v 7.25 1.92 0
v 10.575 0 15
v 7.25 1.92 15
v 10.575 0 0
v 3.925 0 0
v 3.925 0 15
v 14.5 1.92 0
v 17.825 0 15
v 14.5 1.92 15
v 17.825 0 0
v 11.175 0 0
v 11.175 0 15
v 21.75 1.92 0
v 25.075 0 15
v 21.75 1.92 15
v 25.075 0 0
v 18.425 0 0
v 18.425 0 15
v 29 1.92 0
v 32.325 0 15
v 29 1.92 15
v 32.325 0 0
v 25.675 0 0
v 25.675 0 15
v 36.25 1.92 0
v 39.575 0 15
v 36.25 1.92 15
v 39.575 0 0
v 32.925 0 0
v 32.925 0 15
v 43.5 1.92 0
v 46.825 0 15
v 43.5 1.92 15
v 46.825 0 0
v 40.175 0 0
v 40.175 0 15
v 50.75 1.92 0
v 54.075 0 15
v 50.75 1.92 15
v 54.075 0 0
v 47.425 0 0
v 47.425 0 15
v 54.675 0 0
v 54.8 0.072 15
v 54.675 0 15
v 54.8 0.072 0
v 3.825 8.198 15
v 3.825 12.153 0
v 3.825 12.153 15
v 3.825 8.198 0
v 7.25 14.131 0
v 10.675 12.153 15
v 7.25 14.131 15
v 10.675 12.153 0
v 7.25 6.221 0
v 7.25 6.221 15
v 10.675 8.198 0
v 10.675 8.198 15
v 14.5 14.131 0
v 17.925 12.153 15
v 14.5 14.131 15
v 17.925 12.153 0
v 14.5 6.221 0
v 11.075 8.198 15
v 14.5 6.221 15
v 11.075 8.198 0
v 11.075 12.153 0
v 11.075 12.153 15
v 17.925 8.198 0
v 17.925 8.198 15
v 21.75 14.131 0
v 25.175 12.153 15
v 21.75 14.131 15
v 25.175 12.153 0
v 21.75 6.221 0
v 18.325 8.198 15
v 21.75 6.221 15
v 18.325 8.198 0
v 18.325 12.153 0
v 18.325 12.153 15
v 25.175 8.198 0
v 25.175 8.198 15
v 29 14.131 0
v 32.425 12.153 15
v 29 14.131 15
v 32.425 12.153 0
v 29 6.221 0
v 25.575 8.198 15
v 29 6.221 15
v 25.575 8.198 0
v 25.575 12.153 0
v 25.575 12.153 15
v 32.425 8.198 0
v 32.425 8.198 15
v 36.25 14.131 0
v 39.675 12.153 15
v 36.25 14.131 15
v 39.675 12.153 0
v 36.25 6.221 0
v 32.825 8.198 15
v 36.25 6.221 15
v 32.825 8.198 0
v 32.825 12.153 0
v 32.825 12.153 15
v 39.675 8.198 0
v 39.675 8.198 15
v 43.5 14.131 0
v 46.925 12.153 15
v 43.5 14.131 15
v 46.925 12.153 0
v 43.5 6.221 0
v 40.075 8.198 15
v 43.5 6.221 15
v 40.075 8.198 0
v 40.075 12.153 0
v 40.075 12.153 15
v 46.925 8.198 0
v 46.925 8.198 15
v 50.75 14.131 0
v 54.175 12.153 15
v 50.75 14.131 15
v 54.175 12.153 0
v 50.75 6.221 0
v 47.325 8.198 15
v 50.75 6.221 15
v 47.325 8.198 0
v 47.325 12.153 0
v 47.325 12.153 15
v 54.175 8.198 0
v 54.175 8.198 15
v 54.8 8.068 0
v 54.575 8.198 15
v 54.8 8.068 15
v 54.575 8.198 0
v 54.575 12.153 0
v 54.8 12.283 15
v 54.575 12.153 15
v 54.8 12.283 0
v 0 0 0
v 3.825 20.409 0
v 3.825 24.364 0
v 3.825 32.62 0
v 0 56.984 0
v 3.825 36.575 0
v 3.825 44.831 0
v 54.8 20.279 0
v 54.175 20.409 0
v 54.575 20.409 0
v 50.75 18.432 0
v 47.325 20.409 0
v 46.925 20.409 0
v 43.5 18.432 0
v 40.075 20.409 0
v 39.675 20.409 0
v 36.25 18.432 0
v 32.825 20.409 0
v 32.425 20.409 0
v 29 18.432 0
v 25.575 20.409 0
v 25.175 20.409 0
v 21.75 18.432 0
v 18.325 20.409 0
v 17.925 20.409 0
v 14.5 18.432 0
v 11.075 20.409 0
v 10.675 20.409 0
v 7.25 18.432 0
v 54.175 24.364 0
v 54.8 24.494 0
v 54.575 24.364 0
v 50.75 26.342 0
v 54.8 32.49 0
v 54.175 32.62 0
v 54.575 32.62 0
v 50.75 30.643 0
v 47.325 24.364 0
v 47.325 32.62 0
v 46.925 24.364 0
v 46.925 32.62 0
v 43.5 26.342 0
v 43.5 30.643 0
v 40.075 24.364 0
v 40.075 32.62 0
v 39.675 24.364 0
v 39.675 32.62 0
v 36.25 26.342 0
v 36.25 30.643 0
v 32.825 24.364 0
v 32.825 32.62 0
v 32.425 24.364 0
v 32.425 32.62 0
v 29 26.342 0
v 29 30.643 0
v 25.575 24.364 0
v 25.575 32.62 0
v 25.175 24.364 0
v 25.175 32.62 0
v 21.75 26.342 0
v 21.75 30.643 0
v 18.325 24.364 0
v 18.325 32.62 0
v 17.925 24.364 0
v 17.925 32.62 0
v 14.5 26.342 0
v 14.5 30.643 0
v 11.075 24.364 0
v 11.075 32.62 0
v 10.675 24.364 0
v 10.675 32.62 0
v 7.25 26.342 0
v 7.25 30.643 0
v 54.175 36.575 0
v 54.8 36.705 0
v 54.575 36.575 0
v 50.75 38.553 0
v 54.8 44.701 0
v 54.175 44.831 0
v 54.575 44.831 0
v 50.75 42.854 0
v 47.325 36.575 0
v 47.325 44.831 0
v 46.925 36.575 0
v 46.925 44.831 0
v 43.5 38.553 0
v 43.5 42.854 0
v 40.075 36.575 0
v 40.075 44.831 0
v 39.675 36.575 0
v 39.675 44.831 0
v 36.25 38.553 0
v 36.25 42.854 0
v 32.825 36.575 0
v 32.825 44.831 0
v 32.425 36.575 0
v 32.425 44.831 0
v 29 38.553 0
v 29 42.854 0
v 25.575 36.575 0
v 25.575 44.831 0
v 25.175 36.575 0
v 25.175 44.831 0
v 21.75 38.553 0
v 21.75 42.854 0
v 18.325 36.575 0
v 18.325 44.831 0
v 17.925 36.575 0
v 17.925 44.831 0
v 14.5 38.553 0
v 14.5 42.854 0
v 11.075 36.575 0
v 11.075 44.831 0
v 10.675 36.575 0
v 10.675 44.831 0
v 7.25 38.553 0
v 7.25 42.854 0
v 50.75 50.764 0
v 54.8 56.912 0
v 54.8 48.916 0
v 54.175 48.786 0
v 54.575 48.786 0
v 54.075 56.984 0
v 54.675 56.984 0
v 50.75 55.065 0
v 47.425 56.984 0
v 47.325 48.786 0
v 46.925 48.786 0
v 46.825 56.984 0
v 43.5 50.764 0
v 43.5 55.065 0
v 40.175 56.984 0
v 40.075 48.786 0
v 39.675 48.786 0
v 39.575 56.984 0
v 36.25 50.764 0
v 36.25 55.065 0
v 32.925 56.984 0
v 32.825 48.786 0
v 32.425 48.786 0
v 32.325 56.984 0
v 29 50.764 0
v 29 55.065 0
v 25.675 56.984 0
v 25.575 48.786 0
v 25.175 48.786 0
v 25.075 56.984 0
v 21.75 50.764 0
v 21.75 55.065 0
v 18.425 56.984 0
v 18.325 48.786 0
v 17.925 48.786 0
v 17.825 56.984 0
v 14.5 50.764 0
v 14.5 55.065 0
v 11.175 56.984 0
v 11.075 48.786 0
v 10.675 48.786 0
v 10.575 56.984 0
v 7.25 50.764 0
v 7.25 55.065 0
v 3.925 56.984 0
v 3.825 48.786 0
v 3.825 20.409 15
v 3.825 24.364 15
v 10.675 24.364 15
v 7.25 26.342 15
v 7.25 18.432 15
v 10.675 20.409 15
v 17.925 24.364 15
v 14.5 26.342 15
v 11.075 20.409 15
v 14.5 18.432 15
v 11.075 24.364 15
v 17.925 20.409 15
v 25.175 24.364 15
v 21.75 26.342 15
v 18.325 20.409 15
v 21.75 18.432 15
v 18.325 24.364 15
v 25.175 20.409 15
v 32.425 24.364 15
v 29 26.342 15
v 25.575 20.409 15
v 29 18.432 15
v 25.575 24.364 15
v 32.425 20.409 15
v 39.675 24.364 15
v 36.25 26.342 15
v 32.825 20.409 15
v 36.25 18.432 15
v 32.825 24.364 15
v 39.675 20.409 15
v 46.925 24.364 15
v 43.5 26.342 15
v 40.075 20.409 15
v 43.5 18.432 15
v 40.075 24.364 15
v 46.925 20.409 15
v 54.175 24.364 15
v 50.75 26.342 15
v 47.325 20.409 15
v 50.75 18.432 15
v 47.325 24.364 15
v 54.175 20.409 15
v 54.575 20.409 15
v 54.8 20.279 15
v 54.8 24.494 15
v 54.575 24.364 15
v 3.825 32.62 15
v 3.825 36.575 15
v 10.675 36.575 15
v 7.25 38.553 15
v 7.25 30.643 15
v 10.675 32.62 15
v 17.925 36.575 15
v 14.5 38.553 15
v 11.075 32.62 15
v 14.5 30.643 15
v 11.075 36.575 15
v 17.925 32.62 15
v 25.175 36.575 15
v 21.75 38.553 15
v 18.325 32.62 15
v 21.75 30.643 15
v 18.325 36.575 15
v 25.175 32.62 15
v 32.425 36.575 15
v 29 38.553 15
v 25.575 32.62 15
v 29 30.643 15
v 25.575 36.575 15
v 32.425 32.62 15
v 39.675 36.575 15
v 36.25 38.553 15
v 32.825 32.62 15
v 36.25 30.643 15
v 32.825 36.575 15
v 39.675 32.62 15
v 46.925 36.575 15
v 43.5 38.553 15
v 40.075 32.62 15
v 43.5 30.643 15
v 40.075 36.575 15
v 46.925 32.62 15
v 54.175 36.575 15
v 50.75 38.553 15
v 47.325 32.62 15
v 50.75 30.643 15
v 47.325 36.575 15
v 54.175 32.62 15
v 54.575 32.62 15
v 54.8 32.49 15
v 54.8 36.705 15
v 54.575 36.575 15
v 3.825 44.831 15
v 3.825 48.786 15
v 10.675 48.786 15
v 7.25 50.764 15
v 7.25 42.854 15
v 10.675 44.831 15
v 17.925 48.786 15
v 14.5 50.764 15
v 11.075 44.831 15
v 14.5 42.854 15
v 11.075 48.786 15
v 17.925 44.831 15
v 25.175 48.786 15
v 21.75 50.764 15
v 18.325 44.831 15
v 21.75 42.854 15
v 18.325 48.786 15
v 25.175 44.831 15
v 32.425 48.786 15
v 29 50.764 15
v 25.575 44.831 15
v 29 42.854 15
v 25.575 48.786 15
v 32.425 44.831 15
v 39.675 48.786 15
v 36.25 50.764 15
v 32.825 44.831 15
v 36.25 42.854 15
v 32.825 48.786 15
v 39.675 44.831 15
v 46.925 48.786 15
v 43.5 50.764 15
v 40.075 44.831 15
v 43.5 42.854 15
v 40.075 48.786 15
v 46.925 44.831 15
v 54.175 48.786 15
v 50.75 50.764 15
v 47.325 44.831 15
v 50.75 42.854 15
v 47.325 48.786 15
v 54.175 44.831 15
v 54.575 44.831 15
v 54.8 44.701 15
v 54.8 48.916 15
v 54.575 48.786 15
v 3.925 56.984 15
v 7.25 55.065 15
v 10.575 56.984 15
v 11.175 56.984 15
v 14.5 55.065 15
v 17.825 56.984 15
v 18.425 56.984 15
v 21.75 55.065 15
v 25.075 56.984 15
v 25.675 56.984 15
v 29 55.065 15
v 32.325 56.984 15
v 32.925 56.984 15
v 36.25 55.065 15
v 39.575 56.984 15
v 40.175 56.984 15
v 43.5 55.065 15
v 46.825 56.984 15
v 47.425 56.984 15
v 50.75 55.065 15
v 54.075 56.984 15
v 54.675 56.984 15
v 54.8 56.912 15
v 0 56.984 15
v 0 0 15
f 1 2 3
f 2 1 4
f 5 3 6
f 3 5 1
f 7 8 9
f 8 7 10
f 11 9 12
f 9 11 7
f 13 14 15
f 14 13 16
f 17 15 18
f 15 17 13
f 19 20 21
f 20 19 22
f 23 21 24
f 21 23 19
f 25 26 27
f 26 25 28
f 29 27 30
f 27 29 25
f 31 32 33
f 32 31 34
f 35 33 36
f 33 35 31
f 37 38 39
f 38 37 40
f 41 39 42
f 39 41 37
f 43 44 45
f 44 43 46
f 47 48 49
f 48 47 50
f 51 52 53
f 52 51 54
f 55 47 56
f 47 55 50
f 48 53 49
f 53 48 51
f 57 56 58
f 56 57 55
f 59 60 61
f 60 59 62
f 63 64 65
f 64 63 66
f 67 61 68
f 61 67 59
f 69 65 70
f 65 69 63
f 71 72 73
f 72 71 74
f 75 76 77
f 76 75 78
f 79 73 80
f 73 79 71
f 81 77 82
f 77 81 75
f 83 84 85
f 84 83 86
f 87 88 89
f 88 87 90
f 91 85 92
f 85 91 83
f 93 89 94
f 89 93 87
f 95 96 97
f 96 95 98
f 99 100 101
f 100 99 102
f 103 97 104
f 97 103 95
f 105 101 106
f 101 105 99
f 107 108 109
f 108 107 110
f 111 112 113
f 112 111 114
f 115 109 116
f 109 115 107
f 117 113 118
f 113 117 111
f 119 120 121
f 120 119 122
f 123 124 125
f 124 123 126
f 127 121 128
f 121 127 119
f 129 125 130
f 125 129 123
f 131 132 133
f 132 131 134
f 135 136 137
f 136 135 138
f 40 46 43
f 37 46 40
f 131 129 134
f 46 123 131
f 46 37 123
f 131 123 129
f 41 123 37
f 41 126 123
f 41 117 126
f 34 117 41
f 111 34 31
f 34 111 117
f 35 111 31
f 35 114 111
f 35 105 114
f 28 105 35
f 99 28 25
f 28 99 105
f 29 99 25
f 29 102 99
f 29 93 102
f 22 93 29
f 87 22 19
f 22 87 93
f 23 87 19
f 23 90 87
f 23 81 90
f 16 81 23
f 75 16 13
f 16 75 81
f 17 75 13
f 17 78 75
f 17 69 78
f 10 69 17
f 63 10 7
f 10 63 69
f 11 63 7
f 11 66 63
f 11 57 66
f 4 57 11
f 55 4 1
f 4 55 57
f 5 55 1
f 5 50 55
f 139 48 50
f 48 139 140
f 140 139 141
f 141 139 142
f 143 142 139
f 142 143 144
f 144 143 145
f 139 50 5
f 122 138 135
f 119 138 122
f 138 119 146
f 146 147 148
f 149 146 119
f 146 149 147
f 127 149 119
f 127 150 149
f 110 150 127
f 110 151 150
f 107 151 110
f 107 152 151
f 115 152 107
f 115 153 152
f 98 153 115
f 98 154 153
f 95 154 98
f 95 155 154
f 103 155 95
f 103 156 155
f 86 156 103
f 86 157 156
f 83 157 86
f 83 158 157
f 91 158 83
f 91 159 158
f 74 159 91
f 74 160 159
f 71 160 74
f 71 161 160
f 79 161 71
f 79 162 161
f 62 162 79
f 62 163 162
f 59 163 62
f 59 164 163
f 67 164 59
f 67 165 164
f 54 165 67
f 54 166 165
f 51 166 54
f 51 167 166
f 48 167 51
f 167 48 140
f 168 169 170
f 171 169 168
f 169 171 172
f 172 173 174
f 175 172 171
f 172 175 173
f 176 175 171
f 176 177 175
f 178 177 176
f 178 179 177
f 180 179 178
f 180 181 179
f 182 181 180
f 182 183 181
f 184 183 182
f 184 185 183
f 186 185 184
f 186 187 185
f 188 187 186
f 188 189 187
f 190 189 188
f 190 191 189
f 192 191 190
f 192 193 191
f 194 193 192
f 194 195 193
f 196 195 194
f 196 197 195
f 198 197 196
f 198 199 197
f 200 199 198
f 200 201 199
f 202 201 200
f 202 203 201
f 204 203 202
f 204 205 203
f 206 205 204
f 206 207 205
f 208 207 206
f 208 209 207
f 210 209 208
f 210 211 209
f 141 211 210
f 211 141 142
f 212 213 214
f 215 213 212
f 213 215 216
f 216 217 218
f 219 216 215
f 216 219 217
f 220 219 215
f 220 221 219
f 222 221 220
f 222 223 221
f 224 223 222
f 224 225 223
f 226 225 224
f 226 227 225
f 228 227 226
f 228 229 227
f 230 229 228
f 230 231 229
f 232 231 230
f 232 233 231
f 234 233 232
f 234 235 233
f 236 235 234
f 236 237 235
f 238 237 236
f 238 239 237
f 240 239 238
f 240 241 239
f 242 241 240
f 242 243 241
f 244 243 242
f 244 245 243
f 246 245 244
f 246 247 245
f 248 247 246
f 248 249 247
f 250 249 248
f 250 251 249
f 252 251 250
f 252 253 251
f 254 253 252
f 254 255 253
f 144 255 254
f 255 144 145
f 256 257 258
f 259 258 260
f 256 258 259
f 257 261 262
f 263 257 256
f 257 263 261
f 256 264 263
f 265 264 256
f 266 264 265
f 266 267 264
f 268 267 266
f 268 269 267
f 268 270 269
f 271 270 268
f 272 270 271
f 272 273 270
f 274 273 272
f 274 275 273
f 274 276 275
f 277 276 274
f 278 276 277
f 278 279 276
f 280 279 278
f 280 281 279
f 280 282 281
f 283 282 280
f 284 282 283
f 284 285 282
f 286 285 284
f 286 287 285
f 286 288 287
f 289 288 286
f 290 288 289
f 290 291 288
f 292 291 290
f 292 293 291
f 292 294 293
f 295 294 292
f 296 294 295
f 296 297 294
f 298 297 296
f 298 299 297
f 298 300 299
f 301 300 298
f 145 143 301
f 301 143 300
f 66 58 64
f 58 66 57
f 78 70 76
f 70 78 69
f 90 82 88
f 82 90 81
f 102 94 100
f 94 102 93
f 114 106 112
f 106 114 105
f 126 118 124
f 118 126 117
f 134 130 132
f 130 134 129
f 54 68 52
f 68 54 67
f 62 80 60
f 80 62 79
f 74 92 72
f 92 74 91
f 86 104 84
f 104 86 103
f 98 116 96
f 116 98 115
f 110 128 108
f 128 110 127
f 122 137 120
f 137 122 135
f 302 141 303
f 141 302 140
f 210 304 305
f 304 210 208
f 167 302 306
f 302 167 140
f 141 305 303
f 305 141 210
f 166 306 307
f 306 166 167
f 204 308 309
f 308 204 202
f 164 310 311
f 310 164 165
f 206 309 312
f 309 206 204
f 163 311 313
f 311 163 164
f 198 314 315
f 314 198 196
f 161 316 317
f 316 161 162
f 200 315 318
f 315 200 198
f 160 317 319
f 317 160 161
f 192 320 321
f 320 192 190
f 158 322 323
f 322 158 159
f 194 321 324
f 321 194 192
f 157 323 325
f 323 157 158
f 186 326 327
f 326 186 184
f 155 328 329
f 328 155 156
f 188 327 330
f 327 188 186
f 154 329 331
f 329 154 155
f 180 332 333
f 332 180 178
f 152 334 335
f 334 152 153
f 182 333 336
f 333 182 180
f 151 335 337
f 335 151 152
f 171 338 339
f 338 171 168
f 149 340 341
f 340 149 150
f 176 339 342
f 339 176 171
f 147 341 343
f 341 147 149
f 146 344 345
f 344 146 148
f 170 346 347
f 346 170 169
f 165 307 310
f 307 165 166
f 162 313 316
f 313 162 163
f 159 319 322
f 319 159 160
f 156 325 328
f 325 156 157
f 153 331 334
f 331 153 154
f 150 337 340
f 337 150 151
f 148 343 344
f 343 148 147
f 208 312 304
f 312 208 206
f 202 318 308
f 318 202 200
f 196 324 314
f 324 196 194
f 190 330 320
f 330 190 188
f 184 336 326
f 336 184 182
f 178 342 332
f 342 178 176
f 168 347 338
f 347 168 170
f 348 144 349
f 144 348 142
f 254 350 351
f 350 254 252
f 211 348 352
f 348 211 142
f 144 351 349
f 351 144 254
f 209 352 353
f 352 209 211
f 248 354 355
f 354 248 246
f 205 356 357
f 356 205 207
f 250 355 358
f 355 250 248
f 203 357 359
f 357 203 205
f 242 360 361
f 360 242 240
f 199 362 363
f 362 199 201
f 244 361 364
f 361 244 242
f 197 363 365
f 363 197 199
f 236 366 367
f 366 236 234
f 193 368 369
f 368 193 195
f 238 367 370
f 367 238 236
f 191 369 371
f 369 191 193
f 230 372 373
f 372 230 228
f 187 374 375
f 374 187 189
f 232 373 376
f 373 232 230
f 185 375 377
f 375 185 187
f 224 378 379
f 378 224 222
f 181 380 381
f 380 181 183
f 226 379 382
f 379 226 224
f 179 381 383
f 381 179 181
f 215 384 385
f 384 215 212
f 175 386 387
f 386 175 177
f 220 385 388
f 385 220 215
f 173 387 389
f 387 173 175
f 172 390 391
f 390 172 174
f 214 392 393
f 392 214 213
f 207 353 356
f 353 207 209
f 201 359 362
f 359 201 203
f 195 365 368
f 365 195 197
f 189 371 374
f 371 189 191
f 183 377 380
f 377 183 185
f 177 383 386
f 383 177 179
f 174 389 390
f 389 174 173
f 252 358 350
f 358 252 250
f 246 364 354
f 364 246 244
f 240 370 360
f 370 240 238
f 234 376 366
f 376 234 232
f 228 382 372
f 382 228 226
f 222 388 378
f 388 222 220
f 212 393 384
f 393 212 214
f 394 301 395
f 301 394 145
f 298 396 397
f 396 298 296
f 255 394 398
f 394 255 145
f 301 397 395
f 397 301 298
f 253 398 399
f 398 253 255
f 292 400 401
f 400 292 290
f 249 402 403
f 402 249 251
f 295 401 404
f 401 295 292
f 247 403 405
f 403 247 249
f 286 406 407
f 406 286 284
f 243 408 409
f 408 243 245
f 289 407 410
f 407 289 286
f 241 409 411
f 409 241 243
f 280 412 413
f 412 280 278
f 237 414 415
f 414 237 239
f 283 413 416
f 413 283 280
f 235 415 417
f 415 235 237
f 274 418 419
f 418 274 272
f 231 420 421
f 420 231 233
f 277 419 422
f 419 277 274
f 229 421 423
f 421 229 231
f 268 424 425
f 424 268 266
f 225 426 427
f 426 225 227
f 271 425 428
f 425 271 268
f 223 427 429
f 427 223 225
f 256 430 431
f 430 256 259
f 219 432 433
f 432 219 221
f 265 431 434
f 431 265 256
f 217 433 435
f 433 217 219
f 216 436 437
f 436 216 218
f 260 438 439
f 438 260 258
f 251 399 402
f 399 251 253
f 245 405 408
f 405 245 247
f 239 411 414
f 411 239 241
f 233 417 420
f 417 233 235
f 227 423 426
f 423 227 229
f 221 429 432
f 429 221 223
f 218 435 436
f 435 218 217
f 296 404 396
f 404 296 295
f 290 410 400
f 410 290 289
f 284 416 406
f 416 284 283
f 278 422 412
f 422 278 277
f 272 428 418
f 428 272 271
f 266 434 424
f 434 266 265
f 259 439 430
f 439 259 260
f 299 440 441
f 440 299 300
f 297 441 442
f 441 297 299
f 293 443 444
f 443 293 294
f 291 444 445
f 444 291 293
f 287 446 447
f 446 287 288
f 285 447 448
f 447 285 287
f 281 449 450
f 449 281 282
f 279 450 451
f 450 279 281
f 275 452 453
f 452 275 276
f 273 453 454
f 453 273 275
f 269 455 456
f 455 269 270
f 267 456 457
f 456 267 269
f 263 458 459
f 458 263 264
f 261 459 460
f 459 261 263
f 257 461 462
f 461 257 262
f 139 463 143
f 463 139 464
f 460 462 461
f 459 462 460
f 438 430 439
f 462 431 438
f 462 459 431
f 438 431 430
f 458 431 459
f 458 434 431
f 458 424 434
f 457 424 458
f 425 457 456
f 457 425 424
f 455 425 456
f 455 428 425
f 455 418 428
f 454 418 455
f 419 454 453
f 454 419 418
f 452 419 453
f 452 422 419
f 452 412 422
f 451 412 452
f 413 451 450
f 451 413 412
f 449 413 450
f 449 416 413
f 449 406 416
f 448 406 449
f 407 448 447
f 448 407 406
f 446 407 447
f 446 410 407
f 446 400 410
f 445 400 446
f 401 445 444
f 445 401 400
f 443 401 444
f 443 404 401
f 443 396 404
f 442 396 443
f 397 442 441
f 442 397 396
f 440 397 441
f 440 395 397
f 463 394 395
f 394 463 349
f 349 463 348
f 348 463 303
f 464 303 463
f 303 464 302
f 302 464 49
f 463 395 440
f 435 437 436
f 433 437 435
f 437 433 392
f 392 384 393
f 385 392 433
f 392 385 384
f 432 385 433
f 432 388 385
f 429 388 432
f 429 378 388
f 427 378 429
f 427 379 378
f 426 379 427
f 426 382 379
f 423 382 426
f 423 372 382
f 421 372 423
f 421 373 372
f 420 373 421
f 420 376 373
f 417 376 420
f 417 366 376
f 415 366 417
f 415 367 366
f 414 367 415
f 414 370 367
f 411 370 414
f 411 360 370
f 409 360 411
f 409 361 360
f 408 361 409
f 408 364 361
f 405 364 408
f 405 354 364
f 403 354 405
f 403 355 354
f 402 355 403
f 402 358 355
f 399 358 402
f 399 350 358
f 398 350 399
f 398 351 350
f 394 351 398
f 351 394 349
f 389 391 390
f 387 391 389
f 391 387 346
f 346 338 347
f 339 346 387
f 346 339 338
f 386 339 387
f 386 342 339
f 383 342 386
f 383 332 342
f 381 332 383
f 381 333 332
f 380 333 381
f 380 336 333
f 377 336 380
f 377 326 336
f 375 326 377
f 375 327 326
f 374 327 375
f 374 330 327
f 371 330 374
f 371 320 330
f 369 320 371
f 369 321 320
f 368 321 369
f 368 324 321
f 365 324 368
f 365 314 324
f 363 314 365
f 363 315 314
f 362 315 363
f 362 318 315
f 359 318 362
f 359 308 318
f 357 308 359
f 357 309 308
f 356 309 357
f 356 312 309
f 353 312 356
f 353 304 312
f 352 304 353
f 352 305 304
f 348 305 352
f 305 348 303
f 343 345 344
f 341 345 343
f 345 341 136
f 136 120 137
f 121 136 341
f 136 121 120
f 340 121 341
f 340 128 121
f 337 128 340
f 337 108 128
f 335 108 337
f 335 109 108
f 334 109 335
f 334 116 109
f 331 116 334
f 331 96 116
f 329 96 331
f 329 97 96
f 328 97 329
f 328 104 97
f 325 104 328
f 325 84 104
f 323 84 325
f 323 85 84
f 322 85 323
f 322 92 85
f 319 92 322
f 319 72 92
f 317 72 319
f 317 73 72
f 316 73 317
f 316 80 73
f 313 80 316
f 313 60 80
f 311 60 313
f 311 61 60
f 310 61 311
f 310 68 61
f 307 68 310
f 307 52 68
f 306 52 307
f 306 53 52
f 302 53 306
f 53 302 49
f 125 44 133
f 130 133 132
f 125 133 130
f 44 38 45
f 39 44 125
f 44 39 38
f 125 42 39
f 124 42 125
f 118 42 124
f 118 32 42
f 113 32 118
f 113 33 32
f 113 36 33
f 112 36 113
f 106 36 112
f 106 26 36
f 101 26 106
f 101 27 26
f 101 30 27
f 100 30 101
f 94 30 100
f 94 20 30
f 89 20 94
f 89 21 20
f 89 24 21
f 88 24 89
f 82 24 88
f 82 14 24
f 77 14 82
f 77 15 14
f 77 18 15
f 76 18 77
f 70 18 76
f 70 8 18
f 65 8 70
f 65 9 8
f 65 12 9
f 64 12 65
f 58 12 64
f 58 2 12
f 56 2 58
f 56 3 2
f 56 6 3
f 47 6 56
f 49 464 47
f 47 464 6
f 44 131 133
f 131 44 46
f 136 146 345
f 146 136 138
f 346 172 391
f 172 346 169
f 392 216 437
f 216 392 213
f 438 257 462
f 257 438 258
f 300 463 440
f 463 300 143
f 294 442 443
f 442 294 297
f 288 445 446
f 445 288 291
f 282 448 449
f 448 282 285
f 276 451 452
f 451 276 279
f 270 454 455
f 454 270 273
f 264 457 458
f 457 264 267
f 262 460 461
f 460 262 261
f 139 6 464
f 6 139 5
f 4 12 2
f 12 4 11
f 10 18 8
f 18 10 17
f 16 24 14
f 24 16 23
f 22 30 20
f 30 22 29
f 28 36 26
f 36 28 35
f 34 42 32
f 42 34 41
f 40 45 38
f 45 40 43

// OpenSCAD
a = 6.35; // hex bit size
b = 0.4; // Wall thickness.
c = 15; // Height
t = 0.25; // tolerance for wall thickness 
l = a*tan(30);


module hexa(a,h) {
    l = a*tan(30);
    echo(l);
    union() {
        cube([a, l, h], center=true);
        rotate([0,0,60])
        cube([a, l, h], center=true);
        rotate([0,0,120])
        cube([a, l, h], center=true);
    }
}
module row(size, spacing, bits, h) {
face = size*tan(30);
for( i= [1:bits]) {
    translate([i*(size+spacing), 0, 0]) hexa(size,h);
}
translate([size,-face/2,0]) cube([bits*size,face,h]);
}


f = a+2*t;
face = f*tan(30);
spacing = face + b/2*tan(30);
difference() {
    cube([8*f, 14*spacing,c]);
    for(i=[0:5]) {
        translate([0, (3*i-0.5)*(face+b/2*tan(30)), 0]) row(f,b, 8, c*3);
}
}
